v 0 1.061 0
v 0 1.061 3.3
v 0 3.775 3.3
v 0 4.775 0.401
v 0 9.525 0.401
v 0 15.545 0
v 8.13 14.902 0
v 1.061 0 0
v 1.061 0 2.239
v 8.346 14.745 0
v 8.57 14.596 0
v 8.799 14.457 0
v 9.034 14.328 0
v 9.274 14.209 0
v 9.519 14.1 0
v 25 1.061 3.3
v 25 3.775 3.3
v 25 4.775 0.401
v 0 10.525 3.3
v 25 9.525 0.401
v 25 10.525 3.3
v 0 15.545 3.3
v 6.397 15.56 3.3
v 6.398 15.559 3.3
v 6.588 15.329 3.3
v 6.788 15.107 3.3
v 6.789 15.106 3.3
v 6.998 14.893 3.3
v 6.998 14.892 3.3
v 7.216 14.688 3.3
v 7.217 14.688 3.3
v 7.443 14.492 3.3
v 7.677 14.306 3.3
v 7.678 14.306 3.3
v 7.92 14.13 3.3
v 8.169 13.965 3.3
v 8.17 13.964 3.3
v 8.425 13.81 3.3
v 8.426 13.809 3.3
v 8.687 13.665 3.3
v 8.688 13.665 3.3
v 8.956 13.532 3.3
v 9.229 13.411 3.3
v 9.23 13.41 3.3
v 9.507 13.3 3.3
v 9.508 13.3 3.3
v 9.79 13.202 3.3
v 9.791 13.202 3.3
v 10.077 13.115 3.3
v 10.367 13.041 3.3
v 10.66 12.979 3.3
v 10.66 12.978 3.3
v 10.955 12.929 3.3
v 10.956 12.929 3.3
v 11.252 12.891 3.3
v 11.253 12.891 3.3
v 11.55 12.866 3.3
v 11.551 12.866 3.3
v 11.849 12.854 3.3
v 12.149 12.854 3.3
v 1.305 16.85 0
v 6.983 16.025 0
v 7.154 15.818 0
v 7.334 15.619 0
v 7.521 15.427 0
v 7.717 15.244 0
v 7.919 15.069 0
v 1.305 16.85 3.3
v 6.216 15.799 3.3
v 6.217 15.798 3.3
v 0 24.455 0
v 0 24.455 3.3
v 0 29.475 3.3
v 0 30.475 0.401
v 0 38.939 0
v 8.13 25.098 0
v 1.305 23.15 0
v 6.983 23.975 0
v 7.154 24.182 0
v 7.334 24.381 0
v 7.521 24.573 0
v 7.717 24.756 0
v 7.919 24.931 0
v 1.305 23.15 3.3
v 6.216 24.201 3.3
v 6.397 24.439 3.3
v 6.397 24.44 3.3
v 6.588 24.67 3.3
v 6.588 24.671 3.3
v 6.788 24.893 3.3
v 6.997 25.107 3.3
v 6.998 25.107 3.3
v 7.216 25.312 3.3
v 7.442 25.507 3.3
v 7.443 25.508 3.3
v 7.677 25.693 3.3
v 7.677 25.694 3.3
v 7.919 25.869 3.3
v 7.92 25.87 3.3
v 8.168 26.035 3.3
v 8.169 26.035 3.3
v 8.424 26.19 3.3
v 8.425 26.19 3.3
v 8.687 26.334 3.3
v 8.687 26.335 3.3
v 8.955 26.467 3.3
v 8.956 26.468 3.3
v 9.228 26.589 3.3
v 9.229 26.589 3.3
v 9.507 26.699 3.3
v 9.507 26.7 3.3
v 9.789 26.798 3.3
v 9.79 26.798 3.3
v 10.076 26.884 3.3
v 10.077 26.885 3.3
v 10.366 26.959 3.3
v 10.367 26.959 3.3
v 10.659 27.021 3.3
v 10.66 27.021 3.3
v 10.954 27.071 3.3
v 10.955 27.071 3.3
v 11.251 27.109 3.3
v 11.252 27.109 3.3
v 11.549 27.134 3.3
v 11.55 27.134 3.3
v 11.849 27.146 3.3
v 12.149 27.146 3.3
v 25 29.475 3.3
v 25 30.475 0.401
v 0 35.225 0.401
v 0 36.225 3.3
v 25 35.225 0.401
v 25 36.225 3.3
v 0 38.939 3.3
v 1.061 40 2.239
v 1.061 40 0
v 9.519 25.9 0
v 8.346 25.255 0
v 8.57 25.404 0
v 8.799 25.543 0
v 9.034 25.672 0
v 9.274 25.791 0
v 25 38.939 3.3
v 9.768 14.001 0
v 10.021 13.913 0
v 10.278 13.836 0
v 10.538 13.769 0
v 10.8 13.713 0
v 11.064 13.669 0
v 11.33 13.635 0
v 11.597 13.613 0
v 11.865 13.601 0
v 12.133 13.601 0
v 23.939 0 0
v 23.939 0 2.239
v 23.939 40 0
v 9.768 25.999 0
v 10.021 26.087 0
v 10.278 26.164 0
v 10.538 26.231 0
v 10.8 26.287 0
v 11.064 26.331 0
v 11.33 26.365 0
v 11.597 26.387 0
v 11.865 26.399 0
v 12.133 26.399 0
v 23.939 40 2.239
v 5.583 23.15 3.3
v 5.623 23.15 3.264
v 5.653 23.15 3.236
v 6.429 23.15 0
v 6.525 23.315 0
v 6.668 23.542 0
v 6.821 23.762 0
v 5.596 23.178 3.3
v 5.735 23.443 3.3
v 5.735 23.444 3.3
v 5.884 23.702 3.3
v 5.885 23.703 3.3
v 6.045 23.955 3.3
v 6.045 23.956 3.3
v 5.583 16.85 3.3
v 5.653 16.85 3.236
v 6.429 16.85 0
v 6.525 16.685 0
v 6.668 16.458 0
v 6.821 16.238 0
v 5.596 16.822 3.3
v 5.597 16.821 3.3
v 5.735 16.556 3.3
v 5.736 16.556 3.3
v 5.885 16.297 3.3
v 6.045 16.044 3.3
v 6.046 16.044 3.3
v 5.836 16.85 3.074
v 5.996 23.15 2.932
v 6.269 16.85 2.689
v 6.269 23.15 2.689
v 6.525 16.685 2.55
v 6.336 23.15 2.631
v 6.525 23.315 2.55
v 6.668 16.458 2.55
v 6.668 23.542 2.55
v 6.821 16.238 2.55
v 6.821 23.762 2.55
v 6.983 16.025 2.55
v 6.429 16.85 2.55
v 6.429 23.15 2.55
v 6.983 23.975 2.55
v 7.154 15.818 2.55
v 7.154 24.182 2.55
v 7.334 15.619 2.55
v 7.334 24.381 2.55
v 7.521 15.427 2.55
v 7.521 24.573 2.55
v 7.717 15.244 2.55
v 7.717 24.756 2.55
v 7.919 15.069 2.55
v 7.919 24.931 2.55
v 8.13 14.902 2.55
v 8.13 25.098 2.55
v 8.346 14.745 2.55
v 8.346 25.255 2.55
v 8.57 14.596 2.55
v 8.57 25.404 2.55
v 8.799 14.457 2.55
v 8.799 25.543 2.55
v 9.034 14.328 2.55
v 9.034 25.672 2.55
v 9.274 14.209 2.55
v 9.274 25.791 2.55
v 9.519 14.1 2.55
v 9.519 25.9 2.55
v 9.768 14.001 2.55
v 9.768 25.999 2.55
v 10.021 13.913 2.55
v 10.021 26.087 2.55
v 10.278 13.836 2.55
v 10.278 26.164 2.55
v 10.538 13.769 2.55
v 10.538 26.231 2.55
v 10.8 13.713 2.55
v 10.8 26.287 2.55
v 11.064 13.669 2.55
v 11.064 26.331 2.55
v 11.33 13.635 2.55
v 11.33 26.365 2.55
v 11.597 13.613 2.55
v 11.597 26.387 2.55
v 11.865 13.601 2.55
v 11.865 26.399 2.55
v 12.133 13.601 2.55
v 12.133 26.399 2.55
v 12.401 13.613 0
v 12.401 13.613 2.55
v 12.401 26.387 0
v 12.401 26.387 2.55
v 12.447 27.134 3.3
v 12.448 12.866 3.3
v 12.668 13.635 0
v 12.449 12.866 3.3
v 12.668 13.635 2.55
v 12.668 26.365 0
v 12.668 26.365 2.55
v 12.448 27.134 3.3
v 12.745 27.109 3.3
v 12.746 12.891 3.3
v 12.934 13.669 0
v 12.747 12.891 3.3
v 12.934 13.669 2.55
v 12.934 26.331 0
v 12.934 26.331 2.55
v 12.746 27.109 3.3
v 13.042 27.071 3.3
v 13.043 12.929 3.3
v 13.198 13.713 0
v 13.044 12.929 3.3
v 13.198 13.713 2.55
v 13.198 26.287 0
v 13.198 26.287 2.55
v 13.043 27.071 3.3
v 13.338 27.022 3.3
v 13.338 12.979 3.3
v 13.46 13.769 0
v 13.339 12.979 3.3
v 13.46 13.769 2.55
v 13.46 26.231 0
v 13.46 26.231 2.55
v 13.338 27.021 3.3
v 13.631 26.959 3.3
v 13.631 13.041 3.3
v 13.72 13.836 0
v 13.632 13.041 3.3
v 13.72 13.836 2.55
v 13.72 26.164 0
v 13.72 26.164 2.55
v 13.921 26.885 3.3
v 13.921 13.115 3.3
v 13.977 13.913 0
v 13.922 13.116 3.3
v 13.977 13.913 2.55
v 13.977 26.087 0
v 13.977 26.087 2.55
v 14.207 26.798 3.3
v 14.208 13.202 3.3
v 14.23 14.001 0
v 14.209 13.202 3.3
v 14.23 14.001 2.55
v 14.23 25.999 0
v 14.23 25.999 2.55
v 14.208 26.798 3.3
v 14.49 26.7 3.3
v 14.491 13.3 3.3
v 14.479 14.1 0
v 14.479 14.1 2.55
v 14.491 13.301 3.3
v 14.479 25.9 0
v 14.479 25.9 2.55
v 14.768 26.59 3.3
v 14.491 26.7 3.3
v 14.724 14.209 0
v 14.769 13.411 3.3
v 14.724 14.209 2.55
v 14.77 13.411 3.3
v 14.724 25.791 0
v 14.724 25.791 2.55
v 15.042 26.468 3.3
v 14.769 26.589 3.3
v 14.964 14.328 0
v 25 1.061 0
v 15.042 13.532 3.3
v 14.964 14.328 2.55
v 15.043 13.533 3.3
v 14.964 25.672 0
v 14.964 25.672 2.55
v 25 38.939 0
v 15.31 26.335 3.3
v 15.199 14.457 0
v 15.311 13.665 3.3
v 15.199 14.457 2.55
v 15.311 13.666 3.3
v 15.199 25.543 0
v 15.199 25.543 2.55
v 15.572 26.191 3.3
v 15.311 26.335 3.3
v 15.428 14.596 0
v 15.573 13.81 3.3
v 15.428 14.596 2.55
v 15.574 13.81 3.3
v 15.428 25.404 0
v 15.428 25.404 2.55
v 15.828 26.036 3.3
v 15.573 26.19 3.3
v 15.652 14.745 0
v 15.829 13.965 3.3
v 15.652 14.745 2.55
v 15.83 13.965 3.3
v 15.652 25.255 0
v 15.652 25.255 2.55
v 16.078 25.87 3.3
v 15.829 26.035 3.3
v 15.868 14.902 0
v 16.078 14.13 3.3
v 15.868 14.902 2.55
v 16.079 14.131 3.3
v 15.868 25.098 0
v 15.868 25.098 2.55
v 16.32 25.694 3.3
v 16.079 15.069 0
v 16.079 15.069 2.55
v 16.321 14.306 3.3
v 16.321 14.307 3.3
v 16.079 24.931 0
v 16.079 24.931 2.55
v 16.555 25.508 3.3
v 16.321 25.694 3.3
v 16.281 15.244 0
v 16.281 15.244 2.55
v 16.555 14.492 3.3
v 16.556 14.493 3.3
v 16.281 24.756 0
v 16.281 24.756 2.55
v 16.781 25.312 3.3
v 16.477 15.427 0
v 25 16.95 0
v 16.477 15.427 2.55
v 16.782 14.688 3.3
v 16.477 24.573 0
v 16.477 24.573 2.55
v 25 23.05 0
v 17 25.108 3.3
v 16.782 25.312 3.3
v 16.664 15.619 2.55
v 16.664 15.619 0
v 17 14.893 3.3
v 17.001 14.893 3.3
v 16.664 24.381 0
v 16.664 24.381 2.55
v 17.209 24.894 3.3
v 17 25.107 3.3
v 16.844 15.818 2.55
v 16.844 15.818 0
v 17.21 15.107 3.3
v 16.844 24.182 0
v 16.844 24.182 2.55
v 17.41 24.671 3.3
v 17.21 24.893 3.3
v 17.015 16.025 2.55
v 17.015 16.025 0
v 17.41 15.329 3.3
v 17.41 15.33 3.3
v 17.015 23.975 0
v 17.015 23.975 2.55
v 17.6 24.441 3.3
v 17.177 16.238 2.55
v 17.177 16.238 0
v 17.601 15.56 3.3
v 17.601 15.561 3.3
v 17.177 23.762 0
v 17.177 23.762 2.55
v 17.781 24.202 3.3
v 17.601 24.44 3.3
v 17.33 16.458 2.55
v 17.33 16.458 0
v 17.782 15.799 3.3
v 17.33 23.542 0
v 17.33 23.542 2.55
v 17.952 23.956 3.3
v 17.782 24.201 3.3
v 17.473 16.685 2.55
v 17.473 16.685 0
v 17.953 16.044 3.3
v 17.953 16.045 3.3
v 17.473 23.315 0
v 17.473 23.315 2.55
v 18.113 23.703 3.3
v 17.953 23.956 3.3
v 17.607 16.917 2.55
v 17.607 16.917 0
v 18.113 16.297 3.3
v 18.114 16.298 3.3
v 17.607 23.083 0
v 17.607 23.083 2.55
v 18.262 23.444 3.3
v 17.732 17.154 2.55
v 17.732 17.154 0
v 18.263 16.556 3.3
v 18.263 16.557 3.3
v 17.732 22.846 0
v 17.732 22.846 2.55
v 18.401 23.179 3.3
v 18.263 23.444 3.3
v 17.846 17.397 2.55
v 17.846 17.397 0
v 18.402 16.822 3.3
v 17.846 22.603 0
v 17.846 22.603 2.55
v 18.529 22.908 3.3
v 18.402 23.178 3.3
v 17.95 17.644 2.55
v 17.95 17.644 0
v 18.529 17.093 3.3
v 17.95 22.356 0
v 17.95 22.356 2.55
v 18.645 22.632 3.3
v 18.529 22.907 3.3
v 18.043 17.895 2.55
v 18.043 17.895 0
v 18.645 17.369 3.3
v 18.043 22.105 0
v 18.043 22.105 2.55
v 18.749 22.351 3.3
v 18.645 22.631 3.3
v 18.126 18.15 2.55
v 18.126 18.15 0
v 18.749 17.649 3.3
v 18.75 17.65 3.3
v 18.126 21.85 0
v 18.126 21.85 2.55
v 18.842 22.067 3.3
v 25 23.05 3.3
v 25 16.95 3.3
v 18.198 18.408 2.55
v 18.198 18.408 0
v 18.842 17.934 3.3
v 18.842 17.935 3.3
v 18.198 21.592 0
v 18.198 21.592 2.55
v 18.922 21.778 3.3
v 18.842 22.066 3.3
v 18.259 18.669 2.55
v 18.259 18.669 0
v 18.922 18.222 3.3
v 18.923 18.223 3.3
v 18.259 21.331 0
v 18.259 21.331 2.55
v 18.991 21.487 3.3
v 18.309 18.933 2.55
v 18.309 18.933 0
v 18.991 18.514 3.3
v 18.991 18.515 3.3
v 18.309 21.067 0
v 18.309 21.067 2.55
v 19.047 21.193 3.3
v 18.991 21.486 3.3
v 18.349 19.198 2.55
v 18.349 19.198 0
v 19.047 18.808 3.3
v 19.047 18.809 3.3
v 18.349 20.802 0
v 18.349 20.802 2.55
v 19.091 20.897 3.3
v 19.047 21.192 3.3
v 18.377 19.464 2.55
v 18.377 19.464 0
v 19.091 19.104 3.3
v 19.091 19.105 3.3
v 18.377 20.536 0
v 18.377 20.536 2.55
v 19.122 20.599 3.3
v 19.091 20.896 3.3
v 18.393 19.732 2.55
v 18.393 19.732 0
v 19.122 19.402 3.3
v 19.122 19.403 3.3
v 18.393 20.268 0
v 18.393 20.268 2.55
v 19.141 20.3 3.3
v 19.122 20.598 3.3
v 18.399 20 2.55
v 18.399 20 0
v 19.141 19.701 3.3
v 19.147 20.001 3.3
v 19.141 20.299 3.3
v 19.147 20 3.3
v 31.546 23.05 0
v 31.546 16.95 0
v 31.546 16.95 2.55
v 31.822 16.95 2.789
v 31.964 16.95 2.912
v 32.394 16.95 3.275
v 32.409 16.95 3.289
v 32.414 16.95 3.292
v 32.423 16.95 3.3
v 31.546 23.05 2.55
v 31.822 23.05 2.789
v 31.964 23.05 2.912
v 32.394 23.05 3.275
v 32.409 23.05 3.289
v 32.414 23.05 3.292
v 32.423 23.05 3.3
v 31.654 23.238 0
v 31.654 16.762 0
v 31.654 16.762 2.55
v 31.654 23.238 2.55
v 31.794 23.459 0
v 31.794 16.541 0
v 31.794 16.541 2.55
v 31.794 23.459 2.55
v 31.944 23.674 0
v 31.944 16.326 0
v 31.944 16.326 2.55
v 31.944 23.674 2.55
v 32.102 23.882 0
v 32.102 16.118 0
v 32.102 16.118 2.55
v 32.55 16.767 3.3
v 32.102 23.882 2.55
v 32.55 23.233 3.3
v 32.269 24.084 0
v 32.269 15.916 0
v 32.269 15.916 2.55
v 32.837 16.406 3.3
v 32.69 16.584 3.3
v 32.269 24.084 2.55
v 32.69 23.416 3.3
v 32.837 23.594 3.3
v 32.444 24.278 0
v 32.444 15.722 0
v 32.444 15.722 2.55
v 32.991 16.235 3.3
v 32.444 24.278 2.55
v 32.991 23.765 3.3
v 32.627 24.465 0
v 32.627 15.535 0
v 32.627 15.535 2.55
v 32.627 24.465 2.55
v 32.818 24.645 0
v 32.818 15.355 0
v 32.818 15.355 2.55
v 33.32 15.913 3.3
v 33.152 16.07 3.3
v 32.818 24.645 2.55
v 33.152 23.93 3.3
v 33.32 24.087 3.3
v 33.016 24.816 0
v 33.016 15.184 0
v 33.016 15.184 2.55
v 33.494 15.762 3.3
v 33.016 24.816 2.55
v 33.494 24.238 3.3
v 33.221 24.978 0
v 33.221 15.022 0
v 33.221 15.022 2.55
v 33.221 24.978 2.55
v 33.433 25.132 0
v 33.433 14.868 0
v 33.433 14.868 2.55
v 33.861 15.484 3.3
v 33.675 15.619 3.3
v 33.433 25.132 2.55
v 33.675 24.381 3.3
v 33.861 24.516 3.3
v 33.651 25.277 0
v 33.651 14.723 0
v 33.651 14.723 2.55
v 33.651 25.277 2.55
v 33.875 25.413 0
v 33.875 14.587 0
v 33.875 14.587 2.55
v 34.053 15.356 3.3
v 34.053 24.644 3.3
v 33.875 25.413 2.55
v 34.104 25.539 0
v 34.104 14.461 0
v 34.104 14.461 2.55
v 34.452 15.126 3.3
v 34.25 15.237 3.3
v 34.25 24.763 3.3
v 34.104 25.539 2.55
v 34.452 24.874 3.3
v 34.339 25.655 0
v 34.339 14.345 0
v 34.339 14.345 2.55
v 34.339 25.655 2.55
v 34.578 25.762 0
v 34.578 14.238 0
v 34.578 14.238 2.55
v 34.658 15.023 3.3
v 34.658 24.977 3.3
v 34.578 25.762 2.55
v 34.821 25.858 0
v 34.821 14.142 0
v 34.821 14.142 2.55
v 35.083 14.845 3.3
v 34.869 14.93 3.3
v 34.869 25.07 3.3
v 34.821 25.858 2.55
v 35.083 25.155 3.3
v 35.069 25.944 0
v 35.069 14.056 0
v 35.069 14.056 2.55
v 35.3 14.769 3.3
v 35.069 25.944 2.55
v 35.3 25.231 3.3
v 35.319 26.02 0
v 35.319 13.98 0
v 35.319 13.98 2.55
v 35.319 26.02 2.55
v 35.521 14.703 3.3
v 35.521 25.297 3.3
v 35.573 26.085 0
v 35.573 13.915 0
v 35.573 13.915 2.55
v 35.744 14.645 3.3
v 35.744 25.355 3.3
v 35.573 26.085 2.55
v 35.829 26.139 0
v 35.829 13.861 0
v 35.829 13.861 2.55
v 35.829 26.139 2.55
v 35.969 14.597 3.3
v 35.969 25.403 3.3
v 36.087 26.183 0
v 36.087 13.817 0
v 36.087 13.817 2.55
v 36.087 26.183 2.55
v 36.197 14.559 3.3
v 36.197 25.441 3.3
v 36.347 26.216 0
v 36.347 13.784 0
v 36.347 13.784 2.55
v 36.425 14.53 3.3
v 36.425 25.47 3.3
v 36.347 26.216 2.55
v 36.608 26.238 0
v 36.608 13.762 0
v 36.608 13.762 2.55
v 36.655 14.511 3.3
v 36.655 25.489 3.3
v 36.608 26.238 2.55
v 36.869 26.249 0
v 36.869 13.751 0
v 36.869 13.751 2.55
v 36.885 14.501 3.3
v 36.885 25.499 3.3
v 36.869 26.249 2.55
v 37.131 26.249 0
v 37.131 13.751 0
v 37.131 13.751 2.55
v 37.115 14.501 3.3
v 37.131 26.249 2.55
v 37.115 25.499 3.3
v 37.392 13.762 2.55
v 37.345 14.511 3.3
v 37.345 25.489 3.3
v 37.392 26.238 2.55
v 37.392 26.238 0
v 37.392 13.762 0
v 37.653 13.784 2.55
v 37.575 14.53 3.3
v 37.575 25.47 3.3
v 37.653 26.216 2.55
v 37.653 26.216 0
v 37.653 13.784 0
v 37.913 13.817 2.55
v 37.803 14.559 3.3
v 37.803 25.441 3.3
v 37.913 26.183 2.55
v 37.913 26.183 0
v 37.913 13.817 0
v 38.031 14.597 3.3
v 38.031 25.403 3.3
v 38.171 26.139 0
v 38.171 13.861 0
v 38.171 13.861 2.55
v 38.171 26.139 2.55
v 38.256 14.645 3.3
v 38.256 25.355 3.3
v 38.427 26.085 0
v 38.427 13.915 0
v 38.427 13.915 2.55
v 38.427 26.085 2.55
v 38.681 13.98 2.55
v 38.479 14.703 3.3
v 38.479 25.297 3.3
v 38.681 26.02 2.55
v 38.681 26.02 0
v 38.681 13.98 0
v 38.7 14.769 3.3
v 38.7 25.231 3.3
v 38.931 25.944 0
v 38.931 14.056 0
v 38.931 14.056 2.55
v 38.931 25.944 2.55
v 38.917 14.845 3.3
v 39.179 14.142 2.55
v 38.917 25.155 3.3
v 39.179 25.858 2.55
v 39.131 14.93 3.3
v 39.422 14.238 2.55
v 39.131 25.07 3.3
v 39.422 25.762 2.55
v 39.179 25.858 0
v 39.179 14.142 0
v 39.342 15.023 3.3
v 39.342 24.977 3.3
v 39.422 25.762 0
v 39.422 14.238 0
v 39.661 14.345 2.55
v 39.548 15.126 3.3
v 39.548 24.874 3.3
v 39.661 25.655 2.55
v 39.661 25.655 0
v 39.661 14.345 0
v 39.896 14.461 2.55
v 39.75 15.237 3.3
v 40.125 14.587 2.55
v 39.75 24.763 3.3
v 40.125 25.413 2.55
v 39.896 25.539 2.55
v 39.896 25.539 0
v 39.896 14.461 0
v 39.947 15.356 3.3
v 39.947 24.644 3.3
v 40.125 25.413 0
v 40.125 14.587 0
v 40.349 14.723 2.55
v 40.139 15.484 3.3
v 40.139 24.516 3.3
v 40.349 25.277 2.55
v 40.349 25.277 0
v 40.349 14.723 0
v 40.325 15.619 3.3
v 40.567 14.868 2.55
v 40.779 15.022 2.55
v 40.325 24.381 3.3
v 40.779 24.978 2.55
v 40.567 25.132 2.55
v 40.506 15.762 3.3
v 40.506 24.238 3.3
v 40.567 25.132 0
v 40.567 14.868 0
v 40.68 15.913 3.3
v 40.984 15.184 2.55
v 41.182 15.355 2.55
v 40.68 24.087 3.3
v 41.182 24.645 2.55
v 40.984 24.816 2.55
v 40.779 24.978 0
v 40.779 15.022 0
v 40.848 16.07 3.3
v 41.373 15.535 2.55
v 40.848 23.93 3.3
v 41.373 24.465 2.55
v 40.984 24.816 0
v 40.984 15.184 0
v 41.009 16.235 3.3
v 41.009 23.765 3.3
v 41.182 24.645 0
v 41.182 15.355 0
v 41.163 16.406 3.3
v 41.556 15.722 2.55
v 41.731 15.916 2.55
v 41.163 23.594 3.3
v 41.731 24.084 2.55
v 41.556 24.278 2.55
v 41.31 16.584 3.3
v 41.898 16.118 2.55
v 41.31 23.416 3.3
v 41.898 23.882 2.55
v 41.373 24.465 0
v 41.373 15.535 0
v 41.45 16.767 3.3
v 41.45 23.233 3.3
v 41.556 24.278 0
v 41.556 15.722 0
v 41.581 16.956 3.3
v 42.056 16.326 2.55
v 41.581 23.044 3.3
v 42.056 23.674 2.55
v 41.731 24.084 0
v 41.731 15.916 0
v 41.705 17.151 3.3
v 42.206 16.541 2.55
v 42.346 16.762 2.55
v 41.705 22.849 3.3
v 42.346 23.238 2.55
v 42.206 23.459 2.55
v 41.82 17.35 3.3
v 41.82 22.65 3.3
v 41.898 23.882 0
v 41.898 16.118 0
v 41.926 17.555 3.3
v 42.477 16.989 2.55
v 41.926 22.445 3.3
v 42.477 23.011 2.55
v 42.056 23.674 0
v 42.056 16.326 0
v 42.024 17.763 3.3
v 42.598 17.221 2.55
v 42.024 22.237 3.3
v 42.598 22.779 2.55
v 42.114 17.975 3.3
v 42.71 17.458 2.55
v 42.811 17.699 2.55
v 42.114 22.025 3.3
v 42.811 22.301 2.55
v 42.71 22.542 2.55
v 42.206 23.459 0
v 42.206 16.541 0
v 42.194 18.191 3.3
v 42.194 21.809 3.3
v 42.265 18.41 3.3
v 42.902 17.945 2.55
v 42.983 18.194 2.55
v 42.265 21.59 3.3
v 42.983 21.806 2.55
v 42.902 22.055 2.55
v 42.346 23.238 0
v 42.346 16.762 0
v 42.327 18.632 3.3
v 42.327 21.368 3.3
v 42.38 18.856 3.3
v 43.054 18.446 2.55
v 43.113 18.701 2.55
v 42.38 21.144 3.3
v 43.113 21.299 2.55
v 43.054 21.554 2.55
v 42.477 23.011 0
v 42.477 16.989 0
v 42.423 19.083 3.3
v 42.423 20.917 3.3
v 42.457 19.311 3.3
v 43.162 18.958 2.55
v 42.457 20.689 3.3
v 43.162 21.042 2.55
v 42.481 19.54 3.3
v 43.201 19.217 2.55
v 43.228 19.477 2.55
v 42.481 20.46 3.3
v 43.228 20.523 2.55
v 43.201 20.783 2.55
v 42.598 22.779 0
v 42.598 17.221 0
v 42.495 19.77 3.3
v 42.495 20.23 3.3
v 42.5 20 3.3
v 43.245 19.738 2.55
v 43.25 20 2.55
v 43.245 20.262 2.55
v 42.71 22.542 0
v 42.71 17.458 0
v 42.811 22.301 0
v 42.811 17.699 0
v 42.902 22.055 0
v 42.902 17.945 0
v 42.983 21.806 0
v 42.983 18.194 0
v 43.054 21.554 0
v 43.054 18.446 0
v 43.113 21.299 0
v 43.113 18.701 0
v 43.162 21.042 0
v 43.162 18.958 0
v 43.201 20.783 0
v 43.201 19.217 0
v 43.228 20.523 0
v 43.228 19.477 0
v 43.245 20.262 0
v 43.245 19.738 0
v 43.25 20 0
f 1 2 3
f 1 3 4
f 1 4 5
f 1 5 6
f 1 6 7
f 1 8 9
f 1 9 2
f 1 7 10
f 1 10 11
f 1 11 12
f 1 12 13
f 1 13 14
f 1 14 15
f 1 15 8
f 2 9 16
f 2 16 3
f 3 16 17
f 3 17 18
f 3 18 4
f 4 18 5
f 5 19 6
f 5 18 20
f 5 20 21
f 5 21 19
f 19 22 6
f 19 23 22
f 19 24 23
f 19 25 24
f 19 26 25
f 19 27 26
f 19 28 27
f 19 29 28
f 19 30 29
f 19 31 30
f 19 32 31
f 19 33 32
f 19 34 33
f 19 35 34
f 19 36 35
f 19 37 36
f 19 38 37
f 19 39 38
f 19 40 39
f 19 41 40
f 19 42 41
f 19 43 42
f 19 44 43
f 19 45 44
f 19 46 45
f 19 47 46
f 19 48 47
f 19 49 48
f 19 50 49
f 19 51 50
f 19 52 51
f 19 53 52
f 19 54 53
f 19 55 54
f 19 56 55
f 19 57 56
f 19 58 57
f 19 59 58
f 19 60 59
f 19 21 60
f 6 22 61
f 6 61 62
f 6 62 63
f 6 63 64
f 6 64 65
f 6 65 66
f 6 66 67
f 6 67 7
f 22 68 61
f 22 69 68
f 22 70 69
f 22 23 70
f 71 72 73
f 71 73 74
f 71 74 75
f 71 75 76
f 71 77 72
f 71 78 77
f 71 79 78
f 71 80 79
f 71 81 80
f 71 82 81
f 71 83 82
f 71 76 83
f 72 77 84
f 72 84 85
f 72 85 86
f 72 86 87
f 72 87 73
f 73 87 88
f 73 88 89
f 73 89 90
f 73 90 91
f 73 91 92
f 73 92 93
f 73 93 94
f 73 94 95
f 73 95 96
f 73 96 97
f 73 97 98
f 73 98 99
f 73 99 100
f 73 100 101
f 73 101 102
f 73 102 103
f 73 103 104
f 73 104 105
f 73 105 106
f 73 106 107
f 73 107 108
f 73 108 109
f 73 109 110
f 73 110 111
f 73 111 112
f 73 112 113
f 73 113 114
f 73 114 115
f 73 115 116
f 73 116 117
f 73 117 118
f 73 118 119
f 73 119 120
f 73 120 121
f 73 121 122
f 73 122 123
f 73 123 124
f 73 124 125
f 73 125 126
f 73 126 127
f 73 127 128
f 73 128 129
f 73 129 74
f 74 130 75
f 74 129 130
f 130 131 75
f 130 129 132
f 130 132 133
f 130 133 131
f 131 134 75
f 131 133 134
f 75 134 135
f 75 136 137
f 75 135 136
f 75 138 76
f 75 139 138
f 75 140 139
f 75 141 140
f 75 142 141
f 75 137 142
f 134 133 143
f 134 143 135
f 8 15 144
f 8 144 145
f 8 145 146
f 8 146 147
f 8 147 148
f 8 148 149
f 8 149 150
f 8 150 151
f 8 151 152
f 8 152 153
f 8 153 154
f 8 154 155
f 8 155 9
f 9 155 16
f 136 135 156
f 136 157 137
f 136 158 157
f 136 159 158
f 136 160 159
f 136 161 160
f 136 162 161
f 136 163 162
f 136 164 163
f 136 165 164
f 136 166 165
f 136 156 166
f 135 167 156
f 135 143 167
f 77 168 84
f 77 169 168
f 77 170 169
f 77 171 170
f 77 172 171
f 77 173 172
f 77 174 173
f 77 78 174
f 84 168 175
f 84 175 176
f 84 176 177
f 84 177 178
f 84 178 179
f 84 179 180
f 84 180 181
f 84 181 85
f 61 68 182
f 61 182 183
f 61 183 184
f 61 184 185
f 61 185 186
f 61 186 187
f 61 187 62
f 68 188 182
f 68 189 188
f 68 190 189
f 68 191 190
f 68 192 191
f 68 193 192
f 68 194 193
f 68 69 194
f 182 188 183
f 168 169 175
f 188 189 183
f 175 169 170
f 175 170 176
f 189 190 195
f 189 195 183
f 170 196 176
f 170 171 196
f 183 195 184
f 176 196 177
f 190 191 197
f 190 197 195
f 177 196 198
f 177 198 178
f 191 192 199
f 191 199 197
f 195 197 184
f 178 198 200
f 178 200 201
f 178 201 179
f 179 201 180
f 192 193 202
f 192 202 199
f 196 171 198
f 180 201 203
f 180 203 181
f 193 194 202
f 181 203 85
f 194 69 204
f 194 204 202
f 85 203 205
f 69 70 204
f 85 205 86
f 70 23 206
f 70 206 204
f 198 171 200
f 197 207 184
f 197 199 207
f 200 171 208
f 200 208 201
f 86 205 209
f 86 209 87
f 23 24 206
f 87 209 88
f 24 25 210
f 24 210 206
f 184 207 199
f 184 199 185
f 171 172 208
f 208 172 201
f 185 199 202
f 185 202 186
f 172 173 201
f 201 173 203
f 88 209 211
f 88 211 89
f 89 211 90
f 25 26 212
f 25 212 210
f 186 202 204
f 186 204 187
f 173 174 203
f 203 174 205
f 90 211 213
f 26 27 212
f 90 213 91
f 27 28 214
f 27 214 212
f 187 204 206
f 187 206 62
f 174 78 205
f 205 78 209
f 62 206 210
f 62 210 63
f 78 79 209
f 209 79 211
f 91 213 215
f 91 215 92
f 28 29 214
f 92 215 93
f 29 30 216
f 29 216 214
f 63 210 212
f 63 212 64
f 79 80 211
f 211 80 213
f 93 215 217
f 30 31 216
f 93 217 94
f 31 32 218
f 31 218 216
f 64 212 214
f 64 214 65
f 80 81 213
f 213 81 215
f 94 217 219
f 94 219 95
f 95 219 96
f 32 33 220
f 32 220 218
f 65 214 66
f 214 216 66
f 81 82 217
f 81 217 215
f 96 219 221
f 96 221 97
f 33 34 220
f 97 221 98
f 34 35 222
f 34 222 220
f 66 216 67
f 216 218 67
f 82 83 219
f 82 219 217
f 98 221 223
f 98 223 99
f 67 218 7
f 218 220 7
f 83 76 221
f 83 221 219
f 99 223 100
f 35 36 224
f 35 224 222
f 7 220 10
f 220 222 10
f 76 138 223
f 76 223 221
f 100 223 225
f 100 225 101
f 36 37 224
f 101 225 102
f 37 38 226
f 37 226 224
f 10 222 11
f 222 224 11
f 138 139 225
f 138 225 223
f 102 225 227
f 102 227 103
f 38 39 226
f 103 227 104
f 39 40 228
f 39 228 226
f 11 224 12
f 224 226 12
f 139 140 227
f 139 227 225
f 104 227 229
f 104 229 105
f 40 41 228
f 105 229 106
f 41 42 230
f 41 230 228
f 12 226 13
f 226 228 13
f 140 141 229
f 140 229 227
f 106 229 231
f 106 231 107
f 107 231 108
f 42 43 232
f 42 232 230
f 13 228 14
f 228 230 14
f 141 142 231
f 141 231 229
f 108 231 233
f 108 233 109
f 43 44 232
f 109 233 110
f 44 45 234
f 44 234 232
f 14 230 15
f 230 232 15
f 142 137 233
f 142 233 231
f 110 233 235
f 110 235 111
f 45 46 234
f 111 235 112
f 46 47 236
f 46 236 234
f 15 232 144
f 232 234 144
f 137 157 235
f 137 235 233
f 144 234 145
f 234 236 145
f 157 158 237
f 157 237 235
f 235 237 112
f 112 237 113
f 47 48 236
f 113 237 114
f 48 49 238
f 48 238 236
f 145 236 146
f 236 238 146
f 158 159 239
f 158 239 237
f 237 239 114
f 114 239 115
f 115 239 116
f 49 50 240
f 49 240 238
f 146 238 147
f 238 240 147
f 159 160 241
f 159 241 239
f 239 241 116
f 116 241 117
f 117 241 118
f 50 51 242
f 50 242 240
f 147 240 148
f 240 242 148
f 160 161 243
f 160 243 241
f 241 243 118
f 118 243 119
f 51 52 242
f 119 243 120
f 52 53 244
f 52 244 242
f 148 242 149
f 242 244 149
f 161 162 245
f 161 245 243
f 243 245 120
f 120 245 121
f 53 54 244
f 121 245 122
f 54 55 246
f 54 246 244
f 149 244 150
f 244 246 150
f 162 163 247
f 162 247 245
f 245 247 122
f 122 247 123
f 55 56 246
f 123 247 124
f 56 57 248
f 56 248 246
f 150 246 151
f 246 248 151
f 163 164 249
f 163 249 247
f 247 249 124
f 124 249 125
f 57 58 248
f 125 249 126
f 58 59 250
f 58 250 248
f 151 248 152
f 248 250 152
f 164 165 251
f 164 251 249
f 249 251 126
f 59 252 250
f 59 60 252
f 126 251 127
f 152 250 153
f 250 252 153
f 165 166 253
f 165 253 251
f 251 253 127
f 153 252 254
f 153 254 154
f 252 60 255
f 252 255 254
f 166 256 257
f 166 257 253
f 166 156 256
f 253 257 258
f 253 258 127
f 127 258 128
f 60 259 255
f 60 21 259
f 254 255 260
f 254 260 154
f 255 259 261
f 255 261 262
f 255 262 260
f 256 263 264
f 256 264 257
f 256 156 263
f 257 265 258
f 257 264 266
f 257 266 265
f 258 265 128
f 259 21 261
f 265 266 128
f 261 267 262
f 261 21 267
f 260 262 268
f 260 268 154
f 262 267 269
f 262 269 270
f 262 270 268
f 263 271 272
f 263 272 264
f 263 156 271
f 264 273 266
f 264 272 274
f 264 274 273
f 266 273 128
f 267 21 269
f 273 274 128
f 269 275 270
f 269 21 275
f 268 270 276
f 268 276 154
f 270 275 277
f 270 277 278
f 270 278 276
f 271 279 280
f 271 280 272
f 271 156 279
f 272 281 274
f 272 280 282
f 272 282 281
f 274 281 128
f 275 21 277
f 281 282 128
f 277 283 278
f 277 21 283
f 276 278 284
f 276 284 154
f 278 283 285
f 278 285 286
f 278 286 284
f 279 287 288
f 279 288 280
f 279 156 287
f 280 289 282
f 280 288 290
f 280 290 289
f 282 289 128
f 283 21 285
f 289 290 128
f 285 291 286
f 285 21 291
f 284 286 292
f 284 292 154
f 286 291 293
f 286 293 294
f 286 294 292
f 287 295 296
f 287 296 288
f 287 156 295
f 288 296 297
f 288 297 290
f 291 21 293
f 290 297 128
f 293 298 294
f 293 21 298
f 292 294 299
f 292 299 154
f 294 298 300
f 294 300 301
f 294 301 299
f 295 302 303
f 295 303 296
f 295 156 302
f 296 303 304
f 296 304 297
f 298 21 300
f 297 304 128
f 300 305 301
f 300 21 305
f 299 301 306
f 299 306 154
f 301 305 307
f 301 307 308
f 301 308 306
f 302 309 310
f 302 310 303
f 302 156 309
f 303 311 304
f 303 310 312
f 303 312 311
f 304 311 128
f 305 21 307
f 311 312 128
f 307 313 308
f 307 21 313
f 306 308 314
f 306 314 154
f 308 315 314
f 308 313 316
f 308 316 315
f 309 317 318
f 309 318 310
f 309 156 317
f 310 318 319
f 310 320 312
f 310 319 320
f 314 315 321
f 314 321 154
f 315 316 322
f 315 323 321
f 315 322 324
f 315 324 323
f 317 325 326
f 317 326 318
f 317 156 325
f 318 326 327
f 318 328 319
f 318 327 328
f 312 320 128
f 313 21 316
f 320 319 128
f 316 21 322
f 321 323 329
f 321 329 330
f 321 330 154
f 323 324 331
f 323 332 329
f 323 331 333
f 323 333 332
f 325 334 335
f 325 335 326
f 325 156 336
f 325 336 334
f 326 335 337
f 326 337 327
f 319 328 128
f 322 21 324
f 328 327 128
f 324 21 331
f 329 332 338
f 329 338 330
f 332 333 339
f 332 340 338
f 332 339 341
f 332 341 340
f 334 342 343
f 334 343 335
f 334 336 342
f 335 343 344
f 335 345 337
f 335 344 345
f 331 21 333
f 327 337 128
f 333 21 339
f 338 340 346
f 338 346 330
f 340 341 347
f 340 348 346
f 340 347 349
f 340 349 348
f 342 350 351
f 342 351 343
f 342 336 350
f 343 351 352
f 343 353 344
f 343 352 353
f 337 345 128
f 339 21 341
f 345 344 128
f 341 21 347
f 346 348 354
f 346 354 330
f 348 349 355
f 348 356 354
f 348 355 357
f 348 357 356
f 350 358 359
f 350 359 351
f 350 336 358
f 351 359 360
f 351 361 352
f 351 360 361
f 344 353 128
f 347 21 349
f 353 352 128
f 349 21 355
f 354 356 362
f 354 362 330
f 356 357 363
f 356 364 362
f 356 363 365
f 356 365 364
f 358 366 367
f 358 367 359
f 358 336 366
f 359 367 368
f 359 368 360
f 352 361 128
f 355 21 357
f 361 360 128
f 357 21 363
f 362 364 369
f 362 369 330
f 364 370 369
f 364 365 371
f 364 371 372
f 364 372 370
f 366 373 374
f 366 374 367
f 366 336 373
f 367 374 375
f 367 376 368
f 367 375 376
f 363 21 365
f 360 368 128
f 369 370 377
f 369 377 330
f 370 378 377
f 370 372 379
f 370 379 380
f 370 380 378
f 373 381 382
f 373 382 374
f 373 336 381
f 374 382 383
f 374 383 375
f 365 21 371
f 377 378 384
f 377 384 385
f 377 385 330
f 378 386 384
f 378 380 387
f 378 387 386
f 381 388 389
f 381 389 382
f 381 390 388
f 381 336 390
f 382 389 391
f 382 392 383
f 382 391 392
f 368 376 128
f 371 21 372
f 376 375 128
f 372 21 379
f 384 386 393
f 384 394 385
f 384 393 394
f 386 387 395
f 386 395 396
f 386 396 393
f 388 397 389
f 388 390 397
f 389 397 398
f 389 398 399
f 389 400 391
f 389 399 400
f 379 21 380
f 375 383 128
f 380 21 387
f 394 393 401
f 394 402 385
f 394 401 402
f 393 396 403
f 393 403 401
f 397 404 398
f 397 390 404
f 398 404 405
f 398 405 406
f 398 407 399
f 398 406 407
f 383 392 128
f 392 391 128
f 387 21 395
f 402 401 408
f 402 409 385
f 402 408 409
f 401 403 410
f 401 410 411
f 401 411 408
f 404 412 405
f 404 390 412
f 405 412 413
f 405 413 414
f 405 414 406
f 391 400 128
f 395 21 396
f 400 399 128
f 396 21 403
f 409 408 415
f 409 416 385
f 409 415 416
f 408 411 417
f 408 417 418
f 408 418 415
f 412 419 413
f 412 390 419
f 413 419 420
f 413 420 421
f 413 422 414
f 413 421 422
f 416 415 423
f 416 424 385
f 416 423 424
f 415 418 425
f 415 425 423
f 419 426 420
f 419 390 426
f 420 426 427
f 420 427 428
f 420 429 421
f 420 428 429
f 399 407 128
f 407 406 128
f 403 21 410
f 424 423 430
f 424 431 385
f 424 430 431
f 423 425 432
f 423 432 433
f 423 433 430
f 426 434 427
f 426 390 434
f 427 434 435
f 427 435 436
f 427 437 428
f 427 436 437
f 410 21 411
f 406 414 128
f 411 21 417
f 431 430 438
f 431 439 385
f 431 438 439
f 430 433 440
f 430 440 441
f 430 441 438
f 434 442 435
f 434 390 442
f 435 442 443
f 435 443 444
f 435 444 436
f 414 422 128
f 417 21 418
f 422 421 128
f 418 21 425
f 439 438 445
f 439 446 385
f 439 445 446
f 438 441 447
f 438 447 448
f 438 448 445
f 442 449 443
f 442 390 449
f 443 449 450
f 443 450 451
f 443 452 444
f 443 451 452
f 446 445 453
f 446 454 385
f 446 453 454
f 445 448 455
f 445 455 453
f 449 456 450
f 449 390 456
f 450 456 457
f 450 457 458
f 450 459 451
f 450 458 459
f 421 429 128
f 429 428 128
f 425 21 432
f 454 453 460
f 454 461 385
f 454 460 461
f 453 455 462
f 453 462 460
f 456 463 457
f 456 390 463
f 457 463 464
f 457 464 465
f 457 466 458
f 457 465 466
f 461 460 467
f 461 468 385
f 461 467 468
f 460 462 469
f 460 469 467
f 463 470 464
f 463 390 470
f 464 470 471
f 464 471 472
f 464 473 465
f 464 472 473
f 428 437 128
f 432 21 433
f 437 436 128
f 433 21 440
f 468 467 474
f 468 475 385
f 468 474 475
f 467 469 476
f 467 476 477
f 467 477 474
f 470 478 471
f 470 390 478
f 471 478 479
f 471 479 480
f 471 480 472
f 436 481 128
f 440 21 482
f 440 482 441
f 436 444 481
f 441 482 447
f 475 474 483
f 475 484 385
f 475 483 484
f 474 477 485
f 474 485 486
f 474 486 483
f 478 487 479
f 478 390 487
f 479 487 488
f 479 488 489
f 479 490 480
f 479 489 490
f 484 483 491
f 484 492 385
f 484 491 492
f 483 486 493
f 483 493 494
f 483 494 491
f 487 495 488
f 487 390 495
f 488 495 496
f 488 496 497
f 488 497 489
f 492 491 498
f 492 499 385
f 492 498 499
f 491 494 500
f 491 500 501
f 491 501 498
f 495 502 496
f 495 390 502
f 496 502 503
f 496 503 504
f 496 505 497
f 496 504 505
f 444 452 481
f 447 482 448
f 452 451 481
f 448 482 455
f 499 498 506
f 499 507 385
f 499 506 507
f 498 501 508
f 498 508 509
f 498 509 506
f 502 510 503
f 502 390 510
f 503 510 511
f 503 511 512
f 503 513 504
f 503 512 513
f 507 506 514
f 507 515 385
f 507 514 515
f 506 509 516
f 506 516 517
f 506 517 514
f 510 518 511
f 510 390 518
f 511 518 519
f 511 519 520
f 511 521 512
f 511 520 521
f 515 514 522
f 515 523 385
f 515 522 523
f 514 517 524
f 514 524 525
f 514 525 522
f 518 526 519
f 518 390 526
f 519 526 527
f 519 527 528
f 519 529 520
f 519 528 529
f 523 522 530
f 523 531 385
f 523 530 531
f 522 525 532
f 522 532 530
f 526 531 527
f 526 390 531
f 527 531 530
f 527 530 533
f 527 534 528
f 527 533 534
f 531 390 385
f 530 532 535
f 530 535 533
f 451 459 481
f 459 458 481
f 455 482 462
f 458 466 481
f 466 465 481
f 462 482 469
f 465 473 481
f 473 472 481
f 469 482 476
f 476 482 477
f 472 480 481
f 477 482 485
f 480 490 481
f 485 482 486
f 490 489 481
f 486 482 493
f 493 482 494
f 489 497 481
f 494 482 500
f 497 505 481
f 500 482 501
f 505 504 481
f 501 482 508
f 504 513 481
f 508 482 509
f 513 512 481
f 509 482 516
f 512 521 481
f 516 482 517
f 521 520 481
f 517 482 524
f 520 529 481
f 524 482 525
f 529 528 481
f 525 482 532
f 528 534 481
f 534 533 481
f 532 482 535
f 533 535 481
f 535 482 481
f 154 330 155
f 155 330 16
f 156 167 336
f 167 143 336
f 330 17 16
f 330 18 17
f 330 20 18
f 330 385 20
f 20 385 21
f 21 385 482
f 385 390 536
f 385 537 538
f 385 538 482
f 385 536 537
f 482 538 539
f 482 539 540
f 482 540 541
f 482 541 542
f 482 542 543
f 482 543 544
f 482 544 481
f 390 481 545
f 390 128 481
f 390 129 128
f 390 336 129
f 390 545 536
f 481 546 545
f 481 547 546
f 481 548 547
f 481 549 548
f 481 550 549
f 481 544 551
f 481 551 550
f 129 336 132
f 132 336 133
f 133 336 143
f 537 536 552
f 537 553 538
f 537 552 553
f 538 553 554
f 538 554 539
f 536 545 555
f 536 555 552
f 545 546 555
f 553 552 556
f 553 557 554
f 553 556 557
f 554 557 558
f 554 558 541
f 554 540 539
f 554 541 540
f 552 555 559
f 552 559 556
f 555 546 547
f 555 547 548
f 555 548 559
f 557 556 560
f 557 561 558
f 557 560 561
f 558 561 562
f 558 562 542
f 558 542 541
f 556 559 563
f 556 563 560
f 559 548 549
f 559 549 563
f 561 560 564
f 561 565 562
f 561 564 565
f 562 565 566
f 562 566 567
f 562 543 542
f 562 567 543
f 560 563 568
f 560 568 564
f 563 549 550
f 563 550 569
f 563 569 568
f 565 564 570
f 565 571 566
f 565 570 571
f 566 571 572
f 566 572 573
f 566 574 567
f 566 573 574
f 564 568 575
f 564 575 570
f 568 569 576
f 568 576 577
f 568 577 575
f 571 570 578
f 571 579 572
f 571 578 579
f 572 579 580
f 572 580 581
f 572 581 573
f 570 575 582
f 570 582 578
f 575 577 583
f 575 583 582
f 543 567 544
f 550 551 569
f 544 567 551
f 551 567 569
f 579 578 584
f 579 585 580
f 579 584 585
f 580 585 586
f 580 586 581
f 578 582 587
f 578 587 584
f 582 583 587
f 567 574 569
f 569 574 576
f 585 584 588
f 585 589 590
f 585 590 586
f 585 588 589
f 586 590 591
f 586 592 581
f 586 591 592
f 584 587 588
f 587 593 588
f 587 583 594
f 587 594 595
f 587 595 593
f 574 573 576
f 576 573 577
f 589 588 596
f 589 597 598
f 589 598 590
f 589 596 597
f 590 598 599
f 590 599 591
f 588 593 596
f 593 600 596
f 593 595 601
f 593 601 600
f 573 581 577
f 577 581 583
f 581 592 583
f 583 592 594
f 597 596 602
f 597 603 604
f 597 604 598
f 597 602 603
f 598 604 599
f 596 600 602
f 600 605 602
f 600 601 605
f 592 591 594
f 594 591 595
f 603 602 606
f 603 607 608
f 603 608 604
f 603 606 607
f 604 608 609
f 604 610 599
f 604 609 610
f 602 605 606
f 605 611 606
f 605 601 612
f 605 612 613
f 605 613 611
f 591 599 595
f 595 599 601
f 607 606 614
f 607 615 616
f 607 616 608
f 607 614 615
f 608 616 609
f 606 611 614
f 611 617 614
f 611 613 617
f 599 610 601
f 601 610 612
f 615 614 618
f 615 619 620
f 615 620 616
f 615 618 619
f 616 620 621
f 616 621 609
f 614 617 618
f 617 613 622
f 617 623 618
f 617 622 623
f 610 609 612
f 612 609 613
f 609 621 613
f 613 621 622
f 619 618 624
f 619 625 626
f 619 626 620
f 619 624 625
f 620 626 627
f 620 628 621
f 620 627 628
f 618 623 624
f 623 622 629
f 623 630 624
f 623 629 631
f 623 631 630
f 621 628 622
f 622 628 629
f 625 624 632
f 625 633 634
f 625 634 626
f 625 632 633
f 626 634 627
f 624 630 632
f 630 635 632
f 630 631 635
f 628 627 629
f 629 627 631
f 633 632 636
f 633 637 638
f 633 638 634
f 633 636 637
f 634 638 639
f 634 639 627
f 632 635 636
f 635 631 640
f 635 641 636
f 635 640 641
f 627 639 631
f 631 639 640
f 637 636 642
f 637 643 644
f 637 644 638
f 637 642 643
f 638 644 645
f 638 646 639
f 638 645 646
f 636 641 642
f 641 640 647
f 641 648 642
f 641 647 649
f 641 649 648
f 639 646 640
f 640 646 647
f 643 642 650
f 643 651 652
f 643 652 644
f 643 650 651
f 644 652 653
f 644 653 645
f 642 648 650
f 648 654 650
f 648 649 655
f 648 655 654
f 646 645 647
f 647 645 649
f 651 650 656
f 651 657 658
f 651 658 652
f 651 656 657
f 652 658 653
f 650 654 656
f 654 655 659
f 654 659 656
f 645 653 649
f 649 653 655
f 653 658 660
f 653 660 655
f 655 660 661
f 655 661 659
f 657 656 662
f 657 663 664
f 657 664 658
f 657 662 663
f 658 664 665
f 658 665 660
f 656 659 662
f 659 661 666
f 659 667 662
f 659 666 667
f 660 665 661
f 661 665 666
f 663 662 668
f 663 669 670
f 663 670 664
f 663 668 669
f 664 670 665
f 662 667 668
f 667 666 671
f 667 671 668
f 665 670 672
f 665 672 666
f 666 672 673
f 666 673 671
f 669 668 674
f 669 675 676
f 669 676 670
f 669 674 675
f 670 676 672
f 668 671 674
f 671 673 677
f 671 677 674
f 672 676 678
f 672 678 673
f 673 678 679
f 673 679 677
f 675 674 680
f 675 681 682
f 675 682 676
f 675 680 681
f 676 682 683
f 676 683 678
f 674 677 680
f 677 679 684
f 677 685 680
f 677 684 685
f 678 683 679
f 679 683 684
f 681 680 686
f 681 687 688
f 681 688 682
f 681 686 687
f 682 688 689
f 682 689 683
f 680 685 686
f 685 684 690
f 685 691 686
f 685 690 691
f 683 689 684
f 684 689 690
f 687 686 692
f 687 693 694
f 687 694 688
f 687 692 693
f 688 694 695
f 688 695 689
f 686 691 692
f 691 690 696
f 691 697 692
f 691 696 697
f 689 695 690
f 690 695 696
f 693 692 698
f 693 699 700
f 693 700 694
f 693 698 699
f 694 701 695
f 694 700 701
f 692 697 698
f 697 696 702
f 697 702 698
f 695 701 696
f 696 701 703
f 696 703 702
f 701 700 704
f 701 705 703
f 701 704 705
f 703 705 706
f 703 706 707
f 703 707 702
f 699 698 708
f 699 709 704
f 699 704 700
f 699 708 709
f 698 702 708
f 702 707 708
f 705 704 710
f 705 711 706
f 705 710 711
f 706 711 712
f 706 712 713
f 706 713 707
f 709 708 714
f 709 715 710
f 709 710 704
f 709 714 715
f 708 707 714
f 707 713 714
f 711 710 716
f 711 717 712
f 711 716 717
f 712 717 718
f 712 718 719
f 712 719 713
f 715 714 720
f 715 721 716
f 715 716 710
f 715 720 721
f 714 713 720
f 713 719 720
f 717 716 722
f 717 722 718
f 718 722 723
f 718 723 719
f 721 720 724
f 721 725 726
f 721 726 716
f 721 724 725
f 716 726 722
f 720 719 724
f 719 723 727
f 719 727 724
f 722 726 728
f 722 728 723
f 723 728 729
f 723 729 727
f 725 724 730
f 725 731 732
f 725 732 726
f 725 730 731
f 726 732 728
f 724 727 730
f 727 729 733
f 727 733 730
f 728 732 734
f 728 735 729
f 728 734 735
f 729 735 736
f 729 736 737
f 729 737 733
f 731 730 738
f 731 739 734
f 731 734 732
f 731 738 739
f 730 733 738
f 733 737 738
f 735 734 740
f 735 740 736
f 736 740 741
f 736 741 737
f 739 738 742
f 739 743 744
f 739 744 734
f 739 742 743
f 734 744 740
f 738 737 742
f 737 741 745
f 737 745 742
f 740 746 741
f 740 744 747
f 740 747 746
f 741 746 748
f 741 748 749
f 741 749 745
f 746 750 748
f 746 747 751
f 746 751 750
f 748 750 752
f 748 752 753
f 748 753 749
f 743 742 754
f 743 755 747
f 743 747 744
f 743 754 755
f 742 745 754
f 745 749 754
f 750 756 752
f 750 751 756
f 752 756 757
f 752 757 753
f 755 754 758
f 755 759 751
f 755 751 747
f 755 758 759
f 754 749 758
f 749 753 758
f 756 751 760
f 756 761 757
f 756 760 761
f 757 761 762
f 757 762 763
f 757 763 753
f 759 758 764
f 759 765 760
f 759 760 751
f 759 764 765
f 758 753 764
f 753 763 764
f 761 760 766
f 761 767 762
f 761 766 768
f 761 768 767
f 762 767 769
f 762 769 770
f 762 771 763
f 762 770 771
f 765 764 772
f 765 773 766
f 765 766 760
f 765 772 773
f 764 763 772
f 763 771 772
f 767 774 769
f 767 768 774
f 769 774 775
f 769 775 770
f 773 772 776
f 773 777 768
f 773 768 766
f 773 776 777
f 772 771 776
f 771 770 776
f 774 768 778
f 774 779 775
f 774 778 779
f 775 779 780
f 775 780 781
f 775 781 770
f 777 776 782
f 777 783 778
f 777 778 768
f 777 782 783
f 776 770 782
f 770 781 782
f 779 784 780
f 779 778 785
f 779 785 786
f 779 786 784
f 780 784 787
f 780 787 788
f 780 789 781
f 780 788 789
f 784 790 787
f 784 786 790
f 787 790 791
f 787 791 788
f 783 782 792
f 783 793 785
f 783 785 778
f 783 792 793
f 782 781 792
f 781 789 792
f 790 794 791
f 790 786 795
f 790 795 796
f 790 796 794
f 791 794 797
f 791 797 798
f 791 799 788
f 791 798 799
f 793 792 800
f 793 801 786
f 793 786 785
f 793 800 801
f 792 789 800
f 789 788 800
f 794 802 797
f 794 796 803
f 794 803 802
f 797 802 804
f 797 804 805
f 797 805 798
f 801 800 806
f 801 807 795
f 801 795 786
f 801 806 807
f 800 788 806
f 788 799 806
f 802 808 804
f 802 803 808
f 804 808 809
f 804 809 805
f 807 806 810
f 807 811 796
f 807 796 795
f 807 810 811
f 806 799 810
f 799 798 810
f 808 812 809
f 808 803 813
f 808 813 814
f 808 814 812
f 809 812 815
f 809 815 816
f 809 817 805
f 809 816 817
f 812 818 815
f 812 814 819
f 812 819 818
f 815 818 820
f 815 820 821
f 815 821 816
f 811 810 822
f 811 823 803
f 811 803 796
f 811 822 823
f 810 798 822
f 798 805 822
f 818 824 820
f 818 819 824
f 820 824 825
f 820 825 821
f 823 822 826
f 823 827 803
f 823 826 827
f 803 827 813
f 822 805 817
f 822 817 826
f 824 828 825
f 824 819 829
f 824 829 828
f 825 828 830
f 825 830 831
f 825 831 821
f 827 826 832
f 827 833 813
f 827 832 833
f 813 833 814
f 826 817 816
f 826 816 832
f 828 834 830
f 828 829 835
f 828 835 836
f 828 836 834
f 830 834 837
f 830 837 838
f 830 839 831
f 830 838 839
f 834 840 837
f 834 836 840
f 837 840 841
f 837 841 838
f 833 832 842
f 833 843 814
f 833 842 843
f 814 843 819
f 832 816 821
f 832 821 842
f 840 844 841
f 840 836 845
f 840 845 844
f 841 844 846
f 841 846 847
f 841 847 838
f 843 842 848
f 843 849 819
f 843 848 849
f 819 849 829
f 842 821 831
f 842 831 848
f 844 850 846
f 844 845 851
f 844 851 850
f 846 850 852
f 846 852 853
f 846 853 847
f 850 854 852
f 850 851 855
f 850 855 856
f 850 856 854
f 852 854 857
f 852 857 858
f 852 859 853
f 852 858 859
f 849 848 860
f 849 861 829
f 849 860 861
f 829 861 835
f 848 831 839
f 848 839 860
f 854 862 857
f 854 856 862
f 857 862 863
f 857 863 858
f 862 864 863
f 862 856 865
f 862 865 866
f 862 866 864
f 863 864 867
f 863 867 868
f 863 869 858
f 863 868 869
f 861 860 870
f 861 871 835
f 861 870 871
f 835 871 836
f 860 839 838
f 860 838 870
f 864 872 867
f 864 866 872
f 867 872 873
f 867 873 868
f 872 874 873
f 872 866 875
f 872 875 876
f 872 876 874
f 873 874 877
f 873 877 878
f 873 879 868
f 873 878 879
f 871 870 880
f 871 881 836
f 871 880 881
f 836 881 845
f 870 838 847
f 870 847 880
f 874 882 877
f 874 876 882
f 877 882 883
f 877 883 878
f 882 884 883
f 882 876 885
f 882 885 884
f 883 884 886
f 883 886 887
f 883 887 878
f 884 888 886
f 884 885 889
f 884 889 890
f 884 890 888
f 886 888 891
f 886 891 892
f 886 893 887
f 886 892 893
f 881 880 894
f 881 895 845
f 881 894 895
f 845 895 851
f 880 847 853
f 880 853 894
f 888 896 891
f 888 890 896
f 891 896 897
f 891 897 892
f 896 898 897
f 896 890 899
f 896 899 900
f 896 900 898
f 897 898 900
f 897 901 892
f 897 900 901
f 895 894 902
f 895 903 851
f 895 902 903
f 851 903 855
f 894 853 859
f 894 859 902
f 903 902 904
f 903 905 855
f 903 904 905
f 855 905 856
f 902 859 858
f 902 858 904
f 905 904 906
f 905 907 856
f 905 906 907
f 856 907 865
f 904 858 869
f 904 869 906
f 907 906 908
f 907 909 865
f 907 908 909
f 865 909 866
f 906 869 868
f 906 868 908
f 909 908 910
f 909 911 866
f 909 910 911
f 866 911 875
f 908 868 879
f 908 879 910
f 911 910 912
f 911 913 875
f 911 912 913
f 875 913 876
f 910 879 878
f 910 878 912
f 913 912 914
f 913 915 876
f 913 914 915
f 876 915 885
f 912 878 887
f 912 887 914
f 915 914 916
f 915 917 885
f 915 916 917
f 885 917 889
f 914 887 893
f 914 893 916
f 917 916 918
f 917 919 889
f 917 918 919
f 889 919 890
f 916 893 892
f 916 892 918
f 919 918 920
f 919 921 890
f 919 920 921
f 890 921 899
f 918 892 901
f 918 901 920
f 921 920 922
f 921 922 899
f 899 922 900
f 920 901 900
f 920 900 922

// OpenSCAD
include <../library/train_tracks_generator.scad>

track_tester();
